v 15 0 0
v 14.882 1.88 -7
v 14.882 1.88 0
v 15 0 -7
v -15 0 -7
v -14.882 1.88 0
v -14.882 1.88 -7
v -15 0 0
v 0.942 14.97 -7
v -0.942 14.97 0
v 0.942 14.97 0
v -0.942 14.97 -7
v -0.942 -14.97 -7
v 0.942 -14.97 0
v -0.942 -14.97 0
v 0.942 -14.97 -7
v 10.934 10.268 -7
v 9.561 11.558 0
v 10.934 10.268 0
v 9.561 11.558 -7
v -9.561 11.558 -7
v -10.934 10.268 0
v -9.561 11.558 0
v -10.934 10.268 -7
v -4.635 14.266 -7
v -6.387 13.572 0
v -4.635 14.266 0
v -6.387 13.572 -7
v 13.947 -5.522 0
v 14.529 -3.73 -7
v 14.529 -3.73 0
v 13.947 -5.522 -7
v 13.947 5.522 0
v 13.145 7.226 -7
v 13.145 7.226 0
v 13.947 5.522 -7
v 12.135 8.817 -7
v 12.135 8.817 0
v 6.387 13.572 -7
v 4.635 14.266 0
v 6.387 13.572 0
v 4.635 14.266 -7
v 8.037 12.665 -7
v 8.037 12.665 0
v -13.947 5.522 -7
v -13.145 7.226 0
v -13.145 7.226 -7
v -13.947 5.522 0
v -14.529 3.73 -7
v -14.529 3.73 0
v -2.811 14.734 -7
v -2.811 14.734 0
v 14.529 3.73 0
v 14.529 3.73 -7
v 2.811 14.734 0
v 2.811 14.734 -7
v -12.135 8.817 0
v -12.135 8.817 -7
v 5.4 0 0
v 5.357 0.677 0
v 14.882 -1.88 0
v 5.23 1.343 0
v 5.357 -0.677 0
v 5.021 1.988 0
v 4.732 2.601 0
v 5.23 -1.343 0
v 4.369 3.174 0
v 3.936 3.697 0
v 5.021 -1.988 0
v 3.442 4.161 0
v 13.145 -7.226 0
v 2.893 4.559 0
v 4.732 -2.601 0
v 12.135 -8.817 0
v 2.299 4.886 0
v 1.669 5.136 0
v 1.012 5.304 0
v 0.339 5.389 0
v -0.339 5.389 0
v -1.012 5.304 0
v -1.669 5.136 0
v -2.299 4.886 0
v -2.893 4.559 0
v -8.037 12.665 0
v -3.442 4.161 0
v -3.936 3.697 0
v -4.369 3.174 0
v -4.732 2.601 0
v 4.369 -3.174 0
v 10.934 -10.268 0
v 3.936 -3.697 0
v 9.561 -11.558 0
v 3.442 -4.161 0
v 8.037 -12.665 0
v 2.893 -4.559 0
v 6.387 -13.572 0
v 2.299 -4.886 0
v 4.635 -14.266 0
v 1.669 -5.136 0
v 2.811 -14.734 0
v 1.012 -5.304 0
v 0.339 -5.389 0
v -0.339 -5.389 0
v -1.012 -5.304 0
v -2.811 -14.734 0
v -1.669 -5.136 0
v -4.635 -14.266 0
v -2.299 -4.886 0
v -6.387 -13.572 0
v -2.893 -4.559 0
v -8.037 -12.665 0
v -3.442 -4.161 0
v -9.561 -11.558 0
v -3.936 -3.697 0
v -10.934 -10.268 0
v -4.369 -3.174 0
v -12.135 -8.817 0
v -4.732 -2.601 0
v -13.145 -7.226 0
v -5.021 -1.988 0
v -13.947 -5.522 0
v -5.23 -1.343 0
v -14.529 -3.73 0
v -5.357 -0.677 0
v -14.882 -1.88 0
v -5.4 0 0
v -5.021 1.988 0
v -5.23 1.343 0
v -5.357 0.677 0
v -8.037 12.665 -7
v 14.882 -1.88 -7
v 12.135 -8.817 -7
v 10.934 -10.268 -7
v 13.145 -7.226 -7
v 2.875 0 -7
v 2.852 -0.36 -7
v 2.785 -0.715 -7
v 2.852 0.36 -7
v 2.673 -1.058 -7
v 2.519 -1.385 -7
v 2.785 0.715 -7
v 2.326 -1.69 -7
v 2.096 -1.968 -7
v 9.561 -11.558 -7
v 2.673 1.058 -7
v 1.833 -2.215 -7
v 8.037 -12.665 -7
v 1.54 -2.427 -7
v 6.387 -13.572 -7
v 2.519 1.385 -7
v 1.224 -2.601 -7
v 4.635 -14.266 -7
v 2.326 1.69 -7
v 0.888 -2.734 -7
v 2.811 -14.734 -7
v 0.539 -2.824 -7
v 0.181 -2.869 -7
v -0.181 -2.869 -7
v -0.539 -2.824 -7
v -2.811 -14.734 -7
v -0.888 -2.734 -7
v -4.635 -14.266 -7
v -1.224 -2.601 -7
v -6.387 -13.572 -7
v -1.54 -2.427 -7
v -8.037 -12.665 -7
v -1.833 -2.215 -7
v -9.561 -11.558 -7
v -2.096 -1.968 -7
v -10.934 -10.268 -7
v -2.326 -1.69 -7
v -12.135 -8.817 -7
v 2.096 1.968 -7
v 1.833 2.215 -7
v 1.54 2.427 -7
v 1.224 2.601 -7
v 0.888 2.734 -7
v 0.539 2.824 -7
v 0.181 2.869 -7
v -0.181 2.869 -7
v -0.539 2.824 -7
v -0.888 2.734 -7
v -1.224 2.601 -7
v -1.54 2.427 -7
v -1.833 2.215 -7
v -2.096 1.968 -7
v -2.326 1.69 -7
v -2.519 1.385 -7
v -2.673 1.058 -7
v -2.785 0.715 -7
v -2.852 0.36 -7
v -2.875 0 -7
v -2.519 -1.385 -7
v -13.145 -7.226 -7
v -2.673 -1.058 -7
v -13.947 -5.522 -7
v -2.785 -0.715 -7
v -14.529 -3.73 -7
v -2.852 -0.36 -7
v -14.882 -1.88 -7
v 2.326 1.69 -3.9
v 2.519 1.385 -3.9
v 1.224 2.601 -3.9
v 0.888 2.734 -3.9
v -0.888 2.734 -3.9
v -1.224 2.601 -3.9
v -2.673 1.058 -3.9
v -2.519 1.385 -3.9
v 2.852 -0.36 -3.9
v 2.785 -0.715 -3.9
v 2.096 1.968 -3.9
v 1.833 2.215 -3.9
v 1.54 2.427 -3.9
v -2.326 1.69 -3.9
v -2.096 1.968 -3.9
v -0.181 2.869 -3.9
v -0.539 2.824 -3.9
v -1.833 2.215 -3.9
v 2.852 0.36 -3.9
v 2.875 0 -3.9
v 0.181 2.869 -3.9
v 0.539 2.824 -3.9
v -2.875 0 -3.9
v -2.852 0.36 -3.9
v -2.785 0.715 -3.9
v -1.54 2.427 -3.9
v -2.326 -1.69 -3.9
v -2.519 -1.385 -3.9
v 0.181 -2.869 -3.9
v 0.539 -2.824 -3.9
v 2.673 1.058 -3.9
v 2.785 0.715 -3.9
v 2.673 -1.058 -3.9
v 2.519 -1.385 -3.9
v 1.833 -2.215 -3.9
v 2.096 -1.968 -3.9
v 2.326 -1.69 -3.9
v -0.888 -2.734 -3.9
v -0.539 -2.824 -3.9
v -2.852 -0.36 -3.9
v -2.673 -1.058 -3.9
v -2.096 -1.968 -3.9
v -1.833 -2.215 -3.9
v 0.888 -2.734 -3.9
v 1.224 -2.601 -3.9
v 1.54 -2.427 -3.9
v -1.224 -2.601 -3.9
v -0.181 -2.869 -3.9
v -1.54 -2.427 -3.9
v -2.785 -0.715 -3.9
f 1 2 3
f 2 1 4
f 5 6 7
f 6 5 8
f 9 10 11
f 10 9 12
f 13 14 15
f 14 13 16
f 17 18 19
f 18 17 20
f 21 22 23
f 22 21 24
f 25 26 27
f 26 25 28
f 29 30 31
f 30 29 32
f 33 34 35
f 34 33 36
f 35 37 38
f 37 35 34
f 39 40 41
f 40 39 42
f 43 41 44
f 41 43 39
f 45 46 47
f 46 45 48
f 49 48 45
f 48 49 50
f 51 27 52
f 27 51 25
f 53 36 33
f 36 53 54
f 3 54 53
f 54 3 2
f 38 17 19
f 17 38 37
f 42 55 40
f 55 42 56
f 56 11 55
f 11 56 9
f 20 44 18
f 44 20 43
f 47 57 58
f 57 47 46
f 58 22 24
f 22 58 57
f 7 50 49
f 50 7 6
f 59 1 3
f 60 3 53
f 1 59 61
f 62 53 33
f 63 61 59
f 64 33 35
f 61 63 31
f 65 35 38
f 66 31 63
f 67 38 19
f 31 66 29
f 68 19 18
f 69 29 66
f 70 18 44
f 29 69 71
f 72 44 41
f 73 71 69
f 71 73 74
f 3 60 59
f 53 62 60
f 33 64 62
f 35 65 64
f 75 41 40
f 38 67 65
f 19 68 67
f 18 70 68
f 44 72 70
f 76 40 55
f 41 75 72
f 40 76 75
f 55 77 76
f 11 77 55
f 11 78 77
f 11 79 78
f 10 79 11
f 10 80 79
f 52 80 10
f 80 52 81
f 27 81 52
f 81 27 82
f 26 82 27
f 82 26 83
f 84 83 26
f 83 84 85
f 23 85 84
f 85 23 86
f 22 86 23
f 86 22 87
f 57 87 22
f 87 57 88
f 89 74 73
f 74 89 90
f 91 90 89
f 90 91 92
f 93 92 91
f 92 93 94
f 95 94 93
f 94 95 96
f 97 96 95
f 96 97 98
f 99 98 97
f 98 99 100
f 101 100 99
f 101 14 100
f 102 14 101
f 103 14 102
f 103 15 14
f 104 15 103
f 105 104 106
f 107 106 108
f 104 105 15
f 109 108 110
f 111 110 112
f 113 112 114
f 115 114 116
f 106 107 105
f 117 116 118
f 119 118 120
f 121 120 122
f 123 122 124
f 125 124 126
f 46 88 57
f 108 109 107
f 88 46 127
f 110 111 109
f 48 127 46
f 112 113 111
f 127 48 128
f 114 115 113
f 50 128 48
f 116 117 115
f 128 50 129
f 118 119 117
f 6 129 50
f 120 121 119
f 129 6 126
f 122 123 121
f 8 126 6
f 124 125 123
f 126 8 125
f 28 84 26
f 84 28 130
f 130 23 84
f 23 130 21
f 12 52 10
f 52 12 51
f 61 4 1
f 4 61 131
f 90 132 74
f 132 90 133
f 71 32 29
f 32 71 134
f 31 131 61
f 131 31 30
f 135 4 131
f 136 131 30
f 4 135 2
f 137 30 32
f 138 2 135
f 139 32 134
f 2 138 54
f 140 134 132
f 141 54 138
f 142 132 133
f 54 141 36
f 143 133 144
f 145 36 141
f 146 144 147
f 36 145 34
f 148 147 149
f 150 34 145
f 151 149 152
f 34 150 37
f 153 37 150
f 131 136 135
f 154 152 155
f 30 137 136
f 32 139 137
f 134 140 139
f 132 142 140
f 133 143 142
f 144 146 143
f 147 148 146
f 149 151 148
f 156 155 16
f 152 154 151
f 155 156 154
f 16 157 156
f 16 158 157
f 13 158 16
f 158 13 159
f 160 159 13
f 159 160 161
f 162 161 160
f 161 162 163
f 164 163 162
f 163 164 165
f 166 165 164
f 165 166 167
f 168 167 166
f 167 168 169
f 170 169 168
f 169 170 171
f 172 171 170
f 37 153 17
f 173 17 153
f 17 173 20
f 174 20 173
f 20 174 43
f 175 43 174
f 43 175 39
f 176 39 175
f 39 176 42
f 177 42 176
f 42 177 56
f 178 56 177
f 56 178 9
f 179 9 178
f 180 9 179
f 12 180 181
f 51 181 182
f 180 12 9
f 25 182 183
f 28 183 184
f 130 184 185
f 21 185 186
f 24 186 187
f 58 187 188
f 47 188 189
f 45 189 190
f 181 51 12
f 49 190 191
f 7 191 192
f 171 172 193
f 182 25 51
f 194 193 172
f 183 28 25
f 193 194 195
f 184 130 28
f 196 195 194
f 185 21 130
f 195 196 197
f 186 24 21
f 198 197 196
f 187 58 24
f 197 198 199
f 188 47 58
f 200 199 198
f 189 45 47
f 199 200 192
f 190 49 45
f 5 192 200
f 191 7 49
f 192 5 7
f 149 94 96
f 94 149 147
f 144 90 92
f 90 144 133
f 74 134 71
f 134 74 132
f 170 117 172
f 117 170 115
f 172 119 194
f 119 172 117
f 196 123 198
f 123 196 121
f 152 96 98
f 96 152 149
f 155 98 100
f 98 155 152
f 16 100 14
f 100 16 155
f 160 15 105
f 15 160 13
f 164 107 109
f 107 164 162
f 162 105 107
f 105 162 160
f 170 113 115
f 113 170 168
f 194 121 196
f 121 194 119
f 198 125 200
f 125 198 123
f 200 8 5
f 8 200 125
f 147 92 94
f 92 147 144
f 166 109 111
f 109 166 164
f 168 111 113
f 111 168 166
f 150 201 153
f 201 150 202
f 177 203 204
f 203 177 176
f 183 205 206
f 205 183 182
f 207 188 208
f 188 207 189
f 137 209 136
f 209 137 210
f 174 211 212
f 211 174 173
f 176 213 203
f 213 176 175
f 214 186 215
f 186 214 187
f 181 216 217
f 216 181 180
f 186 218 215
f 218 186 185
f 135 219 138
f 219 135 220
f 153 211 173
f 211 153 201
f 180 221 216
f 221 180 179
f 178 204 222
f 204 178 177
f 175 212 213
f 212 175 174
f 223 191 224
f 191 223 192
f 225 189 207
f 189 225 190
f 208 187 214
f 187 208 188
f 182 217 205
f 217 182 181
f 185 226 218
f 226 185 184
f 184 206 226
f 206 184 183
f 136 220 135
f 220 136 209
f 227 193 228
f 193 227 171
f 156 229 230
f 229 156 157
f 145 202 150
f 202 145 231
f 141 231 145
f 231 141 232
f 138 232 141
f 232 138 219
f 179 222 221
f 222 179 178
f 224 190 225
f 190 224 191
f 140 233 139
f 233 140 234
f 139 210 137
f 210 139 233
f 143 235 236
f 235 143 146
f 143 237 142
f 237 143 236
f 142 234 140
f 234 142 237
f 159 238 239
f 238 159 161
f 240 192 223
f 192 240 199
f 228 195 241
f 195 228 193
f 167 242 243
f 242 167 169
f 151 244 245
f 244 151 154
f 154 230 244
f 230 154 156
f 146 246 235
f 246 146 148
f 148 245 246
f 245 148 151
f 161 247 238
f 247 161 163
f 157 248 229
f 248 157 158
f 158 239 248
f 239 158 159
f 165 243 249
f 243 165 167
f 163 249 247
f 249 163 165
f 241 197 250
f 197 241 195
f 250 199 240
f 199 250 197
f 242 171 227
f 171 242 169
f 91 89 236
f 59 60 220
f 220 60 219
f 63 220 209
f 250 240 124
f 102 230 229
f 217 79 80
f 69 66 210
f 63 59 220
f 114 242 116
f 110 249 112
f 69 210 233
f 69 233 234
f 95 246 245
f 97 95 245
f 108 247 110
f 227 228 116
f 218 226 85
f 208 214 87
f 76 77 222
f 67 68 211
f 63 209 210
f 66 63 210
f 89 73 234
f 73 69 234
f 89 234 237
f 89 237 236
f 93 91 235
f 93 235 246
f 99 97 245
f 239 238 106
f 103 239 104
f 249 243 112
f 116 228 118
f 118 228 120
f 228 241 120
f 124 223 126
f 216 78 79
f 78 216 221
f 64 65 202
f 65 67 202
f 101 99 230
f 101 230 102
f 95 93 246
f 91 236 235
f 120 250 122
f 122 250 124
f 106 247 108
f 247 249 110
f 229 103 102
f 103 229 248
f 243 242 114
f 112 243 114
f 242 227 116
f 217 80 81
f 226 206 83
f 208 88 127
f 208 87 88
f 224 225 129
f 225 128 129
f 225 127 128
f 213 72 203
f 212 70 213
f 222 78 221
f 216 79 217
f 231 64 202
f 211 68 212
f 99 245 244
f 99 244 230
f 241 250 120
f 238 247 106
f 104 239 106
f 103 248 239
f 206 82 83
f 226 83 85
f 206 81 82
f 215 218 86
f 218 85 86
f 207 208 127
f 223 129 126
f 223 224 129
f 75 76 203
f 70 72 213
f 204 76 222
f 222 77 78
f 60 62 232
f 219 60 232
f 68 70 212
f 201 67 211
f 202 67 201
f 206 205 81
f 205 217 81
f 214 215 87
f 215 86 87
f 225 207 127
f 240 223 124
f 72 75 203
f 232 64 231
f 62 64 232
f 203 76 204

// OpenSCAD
$fn = 50;


difference() {
	union() {
		translate(v = [0, 0, -7.0000000000]) {
			cylinder(h = 7, r = 15.0000000000);
		}
		translate(v = [0, 0, -9.0000000000]) {
			cylinder(h = 9, r = 2.8750000000);
		}
	}
	union() {
		translate(v = [0, 0, 0]) {
			rotate(a = [0, 0, 0]) {
				difference() {
					union() {
						#translate(v = [0, 0, -9.0000000000]) {
							cylinder(h = 9, r = 2.6000000000);
						}
						#translate(v = [0, 0, -3.9000000000]) {
							cylinder(h = 3.9000000000, r1 = 2.8750000000, r2 = 5.4000000000);
						}
						#translate(v = [0, 0, -9.0000000000]) {
							cylinder(h = 9, r = 2.8750000000);
						}
						#translate(v = [0, 0, -9.0000000000]) {
							cylinder(h = 9, r = 2.6000000000);
						}
					}
					union();
				}
			}
		}
	}
}
